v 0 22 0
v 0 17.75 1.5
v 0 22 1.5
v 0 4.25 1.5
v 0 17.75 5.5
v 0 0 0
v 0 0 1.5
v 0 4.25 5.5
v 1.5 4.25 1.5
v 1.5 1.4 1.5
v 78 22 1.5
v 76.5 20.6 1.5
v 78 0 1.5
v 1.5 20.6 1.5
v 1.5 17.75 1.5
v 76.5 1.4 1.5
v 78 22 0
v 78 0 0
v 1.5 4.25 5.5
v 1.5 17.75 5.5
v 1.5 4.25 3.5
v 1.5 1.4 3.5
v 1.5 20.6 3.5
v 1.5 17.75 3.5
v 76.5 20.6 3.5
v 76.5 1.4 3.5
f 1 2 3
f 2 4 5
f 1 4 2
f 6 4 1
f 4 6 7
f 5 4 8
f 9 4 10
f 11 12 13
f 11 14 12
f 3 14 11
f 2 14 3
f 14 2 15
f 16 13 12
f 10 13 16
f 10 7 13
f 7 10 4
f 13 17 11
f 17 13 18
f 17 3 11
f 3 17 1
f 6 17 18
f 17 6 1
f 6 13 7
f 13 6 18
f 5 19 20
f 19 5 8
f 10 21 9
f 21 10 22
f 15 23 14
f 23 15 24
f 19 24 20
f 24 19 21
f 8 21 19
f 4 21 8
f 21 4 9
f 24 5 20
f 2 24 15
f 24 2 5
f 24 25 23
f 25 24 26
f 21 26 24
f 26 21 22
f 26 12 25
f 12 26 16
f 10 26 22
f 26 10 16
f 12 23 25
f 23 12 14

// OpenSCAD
Wall   = 1.5; // Wall thickness
Length = 75+Wall*2; // X axis
Width  = 19+Wall*2; // Y
Height = 1.5; // Z

union(){
  cube([Length,Width,Height]);  
  #translate([0,(Width-13.5)/2,Wall]) cube([Wall,13.5,4]);  
  translate([Wall,Wall-.1,Wall]) {
    cube([Length-(Wall*2),Width-(Wall*2)+.2,2]);
  }

}
